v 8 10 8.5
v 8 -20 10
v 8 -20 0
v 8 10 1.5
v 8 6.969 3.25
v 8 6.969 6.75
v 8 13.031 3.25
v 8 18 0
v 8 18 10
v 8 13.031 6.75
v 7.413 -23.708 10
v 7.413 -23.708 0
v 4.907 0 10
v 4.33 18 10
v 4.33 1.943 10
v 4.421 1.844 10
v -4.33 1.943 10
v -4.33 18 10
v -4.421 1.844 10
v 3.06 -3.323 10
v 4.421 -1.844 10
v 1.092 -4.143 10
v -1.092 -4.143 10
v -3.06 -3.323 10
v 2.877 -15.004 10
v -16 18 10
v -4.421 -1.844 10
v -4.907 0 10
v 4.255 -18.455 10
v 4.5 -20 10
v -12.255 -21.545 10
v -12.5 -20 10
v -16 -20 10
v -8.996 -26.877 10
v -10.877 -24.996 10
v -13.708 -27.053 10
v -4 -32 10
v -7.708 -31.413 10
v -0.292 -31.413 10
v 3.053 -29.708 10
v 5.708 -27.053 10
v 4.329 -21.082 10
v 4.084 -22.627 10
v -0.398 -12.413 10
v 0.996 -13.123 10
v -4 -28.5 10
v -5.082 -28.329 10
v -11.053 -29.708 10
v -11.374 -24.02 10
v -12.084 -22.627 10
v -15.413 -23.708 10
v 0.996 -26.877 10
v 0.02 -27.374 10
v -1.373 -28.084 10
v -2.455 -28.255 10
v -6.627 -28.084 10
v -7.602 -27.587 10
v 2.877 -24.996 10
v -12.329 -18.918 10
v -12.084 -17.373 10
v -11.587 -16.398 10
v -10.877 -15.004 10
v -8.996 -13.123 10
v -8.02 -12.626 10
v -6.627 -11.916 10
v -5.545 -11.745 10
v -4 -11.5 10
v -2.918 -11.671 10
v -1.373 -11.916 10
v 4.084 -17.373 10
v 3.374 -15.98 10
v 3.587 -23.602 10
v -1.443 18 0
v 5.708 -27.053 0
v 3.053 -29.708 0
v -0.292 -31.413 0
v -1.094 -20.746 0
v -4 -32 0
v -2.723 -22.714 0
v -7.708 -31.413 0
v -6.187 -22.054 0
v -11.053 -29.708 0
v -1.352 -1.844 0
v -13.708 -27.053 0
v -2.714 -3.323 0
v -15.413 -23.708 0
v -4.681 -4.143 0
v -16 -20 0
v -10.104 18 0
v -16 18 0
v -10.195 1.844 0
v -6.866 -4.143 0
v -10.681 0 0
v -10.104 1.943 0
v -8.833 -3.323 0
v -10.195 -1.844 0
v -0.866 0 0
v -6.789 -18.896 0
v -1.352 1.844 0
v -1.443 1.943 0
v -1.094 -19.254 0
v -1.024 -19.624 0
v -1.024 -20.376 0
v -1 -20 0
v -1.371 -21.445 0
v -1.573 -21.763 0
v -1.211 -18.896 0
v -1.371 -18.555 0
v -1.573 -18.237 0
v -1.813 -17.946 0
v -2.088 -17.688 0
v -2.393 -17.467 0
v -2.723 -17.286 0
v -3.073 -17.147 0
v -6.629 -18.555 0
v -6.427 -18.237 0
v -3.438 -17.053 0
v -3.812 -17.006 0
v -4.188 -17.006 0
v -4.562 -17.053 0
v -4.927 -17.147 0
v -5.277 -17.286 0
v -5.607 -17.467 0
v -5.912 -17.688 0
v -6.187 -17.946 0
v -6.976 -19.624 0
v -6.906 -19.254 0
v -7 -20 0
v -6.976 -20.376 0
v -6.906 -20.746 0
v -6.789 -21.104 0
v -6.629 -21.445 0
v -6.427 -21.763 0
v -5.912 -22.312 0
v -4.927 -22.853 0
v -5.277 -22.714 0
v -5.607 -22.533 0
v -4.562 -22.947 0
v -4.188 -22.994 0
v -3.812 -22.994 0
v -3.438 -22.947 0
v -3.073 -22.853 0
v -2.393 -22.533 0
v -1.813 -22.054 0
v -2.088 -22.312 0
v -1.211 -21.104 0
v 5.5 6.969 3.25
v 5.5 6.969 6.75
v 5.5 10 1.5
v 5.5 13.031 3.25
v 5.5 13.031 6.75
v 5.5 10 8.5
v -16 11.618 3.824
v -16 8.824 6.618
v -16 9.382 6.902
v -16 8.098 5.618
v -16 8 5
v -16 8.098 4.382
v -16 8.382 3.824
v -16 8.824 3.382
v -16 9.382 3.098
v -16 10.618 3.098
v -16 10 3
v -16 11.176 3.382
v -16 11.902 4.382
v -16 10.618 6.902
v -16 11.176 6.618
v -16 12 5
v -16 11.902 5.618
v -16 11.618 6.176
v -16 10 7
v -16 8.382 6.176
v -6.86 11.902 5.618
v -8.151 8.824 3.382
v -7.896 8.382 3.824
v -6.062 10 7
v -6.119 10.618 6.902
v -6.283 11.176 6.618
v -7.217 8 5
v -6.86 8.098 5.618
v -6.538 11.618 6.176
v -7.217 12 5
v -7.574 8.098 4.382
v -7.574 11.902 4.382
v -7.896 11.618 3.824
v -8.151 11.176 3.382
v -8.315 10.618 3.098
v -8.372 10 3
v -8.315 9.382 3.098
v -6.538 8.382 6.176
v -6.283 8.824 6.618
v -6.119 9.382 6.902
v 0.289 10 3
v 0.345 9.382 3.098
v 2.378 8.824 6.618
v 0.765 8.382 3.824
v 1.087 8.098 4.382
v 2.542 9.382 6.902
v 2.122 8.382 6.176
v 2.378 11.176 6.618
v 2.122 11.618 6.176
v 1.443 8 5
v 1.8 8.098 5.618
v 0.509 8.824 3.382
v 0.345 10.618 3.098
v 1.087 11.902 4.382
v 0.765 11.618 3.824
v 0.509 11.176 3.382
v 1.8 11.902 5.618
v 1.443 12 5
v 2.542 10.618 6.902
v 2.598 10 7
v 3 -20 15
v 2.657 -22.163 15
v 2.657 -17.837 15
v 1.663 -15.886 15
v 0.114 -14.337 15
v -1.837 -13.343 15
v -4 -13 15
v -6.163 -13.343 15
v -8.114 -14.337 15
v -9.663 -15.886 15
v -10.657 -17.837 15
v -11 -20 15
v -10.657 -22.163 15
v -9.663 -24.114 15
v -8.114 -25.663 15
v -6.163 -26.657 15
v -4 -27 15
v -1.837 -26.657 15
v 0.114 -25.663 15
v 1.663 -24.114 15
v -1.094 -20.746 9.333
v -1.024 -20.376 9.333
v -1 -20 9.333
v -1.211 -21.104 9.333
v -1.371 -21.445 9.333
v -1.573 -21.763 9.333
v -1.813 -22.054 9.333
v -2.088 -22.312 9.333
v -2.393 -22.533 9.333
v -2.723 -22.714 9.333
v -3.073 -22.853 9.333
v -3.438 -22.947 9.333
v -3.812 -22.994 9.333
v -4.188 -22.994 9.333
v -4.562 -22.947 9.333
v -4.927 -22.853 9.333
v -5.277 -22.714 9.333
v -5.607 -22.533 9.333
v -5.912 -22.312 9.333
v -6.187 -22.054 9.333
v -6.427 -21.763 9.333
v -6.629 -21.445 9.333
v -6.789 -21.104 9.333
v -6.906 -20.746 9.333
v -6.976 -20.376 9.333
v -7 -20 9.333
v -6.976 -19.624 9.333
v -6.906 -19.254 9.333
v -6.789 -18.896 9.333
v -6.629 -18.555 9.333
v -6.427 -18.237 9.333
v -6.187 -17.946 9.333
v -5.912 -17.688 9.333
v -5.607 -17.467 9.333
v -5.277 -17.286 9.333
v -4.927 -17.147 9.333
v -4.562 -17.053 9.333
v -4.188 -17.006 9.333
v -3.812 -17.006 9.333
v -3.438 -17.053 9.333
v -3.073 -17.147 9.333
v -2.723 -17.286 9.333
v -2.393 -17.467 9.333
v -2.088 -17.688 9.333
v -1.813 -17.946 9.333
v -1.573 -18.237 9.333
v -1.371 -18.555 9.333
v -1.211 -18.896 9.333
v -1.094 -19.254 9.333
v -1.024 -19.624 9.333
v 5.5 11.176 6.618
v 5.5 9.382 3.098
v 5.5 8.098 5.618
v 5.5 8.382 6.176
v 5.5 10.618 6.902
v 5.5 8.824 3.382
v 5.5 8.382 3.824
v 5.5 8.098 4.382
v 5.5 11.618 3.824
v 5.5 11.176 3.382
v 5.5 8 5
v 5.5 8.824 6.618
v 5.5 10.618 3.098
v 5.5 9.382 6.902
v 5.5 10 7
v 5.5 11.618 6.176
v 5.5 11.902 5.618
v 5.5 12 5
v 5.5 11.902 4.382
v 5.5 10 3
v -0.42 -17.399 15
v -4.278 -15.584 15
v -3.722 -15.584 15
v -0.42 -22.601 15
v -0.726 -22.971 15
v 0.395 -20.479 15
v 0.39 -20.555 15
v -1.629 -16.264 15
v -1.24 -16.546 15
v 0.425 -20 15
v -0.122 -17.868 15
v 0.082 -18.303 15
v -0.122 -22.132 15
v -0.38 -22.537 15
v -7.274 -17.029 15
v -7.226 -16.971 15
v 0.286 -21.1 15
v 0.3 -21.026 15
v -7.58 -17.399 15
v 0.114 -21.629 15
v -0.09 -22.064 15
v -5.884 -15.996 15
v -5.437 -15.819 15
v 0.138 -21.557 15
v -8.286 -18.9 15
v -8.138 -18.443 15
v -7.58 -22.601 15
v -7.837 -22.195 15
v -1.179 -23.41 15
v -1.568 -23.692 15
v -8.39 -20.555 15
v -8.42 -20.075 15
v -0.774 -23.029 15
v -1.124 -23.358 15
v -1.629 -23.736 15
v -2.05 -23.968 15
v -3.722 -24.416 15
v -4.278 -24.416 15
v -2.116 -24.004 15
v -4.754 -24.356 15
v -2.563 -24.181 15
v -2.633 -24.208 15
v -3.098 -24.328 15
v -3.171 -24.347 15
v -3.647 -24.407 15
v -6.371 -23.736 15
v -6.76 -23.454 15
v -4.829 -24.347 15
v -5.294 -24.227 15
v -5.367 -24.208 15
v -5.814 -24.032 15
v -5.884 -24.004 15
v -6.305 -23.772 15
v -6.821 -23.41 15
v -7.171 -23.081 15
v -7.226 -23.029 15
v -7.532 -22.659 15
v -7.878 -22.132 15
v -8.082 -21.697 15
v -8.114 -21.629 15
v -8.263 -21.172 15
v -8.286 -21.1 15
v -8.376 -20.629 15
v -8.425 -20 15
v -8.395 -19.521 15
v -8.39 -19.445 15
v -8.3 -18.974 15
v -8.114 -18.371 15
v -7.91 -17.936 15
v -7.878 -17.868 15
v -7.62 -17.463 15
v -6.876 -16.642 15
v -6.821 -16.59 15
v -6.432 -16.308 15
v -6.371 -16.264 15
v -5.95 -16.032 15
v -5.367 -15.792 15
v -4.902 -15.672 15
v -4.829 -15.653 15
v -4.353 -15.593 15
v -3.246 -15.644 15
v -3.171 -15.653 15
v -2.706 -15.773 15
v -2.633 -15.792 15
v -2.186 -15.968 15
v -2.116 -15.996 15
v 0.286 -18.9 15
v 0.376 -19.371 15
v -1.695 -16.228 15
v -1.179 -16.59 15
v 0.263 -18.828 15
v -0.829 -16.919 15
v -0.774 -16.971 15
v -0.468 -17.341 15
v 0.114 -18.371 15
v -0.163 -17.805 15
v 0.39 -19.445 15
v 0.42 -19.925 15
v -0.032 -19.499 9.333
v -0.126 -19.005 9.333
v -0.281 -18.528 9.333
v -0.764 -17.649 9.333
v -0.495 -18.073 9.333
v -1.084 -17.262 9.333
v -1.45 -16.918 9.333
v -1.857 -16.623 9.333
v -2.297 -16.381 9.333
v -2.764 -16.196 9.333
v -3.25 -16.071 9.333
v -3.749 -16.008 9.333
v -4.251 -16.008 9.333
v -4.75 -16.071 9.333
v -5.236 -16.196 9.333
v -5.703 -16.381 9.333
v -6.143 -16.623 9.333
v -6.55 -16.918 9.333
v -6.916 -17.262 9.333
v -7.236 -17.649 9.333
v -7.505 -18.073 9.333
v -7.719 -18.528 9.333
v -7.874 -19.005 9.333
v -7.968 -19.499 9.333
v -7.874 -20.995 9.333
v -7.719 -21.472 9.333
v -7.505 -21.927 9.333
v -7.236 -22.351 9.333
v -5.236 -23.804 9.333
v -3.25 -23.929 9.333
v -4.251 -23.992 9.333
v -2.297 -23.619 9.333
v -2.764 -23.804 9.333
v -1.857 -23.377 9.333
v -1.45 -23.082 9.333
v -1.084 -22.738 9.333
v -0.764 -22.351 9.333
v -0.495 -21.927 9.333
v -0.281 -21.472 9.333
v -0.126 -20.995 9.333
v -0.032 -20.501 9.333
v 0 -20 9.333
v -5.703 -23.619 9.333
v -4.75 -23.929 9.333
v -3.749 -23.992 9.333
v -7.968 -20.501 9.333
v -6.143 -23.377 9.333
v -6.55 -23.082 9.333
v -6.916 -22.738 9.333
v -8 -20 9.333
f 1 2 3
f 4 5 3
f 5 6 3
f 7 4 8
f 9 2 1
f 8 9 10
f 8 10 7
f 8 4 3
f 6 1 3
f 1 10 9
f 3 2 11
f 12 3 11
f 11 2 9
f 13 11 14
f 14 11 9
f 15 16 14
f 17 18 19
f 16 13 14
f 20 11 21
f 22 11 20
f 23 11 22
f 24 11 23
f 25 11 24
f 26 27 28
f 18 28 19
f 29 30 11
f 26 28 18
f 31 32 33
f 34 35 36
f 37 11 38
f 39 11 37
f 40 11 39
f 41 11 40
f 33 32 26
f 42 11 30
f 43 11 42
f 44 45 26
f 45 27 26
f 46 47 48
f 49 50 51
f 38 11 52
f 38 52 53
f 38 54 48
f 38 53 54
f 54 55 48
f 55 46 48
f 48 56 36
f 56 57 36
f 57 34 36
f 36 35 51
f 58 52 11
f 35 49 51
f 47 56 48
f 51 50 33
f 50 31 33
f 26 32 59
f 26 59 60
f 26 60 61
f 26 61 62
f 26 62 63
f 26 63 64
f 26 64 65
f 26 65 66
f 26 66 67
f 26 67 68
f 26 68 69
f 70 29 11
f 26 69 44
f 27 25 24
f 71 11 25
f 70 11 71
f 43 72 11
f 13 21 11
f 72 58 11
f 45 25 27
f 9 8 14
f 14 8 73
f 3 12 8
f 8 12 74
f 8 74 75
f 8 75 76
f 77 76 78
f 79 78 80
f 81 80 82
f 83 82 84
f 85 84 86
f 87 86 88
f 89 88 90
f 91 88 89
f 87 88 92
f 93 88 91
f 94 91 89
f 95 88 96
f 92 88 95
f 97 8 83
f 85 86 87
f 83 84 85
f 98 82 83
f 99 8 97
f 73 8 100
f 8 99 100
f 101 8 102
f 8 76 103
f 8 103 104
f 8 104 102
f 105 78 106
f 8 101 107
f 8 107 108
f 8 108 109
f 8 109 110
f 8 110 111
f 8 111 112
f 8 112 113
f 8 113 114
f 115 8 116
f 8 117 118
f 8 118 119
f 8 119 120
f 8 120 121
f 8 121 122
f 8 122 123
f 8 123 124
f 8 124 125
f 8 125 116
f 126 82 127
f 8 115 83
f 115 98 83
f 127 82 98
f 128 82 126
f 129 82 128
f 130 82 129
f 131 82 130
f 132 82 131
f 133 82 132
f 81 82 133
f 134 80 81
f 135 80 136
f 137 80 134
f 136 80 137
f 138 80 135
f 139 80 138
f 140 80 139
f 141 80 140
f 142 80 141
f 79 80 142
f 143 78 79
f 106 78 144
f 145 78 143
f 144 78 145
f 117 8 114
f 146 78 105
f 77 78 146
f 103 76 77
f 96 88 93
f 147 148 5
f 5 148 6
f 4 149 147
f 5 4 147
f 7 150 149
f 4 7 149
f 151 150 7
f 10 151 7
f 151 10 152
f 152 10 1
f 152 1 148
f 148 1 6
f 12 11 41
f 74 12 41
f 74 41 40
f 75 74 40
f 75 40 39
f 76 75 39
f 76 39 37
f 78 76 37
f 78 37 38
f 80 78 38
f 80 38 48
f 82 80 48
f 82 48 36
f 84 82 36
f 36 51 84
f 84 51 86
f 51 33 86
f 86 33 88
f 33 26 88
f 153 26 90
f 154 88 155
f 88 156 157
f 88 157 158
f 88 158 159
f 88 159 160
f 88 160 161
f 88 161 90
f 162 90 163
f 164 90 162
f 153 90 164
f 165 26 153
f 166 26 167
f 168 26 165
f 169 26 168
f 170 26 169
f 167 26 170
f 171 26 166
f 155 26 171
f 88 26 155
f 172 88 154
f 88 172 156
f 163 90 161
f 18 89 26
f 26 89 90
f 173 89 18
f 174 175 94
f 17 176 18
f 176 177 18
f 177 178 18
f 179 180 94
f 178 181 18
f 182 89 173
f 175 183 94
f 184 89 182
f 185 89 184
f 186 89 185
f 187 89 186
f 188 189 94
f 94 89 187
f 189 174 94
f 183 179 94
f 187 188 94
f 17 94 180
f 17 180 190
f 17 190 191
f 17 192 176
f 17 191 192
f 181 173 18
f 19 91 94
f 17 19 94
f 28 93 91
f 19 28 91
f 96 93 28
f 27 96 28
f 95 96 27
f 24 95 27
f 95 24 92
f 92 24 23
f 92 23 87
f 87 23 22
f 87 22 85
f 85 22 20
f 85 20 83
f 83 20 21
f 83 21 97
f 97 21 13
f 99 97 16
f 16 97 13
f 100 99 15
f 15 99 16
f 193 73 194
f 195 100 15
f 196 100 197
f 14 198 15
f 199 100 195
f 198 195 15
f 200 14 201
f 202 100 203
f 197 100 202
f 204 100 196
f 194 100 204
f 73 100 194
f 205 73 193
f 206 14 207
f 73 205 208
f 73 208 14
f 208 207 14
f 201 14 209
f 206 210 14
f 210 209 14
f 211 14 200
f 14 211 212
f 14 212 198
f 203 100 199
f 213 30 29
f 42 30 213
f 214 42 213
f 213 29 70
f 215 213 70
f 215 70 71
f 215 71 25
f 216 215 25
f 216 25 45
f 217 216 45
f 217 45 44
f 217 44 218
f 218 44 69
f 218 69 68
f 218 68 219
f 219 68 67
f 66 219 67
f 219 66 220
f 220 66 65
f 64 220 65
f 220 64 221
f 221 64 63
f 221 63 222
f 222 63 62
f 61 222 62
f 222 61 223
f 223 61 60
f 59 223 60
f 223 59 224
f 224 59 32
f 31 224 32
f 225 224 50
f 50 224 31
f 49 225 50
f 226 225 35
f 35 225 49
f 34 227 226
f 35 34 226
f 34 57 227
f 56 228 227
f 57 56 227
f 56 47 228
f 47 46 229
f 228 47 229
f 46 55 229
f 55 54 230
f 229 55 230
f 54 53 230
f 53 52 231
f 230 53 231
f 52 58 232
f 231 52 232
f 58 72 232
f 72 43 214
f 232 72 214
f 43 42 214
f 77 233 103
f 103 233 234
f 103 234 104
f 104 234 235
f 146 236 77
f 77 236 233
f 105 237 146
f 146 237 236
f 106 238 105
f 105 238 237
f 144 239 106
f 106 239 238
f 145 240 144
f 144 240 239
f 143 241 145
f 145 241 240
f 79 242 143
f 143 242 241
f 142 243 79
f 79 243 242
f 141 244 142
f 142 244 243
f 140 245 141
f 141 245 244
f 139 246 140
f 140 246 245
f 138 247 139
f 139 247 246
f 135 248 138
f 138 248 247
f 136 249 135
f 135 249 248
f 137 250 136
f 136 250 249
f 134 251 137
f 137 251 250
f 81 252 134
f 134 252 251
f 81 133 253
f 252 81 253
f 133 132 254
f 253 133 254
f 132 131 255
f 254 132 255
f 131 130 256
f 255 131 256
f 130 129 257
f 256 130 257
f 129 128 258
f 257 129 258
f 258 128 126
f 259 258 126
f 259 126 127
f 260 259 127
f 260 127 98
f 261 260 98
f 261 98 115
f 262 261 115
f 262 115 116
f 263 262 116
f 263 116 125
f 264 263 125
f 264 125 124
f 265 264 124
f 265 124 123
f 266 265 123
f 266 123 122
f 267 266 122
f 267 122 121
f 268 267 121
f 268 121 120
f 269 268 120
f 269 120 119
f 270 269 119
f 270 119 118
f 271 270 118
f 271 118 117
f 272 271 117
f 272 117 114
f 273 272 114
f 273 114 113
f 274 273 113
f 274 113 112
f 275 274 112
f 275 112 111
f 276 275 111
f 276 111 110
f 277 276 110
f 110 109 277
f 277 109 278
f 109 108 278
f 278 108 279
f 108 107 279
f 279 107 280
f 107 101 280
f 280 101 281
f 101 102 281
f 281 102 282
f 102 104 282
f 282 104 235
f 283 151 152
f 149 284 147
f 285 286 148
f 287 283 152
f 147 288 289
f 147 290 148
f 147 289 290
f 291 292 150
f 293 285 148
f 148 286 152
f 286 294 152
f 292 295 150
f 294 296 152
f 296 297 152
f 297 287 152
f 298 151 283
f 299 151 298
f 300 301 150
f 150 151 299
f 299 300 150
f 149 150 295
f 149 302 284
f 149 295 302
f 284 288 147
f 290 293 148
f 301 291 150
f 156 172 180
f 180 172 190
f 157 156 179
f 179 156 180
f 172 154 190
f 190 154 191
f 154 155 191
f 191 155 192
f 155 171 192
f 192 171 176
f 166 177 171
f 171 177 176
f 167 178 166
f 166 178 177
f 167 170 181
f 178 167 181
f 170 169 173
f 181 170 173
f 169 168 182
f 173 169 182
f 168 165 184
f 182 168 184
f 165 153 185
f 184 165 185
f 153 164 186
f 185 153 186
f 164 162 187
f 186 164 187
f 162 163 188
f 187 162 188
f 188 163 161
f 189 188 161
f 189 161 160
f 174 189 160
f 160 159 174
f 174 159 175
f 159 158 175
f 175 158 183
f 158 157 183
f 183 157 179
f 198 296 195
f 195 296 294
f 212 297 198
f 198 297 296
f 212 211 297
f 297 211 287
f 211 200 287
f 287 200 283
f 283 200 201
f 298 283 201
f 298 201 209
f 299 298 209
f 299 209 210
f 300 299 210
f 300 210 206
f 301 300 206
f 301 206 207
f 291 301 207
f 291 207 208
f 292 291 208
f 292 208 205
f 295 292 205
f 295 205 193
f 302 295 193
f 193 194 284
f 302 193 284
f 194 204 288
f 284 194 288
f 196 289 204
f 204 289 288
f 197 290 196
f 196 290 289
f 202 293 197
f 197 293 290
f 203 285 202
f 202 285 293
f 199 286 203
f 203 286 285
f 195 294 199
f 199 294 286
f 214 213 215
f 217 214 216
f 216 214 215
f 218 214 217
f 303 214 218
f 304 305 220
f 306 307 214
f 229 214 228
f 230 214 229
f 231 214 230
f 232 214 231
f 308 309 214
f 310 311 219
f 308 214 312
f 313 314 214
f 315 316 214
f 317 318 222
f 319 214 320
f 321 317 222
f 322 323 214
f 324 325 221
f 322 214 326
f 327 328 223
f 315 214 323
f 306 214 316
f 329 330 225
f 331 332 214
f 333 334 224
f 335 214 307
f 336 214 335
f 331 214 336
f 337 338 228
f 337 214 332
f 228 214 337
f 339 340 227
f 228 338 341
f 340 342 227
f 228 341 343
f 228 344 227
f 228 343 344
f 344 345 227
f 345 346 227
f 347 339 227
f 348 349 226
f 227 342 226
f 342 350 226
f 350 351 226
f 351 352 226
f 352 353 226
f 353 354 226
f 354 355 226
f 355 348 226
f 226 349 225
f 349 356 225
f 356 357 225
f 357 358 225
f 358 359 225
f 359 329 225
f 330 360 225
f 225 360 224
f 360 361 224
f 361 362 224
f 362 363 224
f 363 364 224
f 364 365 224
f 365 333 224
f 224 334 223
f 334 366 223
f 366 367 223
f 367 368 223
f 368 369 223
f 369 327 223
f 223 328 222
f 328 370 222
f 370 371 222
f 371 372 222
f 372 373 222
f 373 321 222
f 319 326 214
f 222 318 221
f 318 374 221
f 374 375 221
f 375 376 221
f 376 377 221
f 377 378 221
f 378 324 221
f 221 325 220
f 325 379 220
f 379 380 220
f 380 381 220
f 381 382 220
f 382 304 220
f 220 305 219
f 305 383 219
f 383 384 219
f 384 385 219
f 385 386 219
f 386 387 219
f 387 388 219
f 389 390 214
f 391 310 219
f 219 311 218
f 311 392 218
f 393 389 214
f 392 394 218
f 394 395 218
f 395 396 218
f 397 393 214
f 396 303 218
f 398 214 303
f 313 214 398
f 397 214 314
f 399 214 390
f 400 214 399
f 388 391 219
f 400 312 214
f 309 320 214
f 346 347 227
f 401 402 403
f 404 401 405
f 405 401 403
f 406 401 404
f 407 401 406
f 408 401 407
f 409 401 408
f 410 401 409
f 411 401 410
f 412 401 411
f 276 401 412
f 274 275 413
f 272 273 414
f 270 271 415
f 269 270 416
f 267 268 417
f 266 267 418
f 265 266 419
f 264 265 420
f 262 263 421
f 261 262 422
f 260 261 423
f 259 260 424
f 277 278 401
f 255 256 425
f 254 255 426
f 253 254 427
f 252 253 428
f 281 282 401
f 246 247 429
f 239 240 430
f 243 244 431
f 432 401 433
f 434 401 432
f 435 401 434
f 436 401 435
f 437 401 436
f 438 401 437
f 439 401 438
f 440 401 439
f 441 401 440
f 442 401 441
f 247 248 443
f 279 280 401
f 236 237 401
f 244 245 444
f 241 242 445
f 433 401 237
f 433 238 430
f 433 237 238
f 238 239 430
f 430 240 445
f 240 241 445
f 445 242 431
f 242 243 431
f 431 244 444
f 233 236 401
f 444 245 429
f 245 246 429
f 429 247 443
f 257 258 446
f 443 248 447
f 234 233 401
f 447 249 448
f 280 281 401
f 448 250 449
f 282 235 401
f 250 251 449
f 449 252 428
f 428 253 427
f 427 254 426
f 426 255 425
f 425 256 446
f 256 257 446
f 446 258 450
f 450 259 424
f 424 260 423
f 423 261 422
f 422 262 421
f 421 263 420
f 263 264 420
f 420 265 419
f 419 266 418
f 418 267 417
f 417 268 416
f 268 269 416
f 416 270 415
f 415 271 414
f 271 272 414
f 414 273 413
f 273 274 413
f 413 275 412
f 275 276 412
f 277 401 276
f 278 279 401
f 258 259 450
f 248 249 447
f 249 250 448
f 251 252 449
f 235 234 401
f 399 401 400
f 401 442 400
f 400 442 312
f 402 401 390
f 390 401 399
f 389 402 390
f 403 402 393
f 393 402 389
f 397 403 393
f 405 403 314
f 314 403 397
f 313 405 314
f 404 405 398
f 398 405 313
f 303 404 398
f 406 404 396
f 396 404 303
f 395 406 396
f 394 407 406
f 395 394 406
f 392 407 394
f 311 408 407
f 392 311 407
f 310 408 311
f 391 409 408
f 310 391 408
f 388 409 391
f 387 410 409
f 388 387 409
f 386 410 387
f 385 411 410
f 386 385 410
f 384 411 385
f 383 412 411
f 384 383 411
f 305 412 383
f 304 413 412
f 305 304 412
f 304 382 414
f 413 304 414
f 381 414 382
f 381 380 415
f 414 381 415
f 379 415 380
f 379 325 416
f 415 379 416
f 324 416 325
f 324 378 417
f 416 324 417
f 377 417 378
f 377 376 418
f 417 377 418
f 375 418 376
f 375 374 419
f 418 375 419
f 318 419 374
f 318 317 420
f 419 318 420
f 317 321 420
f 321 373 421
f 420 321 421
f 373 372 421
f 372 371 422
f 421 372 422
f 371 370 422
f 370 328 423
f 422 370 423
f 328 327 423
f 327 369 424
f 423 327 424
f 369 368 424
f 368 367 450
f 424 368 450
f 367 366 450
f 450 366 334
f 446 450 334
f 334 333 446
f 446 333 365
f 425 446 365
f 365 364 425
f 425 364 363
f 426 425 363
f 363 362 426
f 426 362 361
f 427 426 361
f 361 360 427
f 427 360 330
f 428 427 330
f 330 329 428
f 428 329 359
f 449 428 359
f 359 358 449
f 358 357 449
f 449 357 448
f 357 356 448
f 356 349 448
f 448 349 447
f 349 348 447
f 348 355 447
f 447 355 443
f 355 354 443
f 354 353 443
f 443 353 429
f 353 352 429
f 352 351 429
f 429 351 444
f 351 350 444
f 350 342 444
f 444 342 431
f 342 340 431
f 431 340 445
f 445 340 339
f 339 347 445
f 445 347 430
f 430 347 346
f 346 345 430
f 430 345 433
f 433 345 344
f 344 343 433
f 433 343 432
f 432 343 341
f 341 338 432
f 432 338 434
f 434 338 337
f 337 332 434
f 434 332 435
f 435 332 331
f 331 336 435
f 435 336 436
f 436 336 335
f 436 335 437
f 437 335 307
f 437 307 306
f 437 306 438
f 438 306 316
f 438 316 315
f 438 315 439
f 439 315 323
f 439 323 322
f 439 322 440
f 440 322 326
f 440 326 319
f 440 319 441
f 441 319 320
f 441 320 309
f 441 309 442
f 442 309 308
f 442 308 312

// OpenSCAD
// nischi prusa lamp holder


screwhole = 4; 		//for 3mm screw, to mount opto stop
nuttrap=7; 			//hole for nut - 3mm nut measured, thickness 2.5 
gap_width = 10;

body_width=24; 	//rod end
body_height=10; 	//rod end
screw_elevation = body_height/2; // set at half of body_height 

translate([0,0,body_height ]) rotate([0,-180,0]) tool_holder();

module tool_holder()
{
  difference()
  {
    union()
    {
  	translate([-8,-20,0 ]) cube([body_width,38,body_height]);  
	translate([4,-20,0 ]) cylinder(body_height, r=body_width/2,$fn=20);
	translate([4,-20,-5 ]) cylinder(body_height, r1=7, r2=10,  $fn=20);
    }

    union()
    {
       rotate([0,30,0]) cutting();

        translate([4,-20,-1]) cylinder(h = body_height+2, r1=3, r2=3 ,$fn = 50);	
        translate([4,-20,-6]) cylinder(h = body_height/3*2, r1=9/2, r2=4 ,$fn = 50);	

	  //screw to hold to rod
	  translate([0,10,screw_elevation]) rotate([0,90,0]) 
		cylinder(40,screwhole/2, screwhole/2, $fn=20,center=true); //screw hole
	  translate([-8,10,screw_elevation]) rotate([0,90,0]) 
		cylinder(5,nuttrap/2,nuttrap/2, $fn=6,center=true); //nut trap
    }
  }
}

module cutting()
{
	translate([0,     0, -5 ]) cylinder((body_height+20),4.25,4.25);  // for 8mm threaded rod
	translate([-3.75,0, -5 ]) cube([7.5,25,(body_height+20)]);   // long slot 
}
